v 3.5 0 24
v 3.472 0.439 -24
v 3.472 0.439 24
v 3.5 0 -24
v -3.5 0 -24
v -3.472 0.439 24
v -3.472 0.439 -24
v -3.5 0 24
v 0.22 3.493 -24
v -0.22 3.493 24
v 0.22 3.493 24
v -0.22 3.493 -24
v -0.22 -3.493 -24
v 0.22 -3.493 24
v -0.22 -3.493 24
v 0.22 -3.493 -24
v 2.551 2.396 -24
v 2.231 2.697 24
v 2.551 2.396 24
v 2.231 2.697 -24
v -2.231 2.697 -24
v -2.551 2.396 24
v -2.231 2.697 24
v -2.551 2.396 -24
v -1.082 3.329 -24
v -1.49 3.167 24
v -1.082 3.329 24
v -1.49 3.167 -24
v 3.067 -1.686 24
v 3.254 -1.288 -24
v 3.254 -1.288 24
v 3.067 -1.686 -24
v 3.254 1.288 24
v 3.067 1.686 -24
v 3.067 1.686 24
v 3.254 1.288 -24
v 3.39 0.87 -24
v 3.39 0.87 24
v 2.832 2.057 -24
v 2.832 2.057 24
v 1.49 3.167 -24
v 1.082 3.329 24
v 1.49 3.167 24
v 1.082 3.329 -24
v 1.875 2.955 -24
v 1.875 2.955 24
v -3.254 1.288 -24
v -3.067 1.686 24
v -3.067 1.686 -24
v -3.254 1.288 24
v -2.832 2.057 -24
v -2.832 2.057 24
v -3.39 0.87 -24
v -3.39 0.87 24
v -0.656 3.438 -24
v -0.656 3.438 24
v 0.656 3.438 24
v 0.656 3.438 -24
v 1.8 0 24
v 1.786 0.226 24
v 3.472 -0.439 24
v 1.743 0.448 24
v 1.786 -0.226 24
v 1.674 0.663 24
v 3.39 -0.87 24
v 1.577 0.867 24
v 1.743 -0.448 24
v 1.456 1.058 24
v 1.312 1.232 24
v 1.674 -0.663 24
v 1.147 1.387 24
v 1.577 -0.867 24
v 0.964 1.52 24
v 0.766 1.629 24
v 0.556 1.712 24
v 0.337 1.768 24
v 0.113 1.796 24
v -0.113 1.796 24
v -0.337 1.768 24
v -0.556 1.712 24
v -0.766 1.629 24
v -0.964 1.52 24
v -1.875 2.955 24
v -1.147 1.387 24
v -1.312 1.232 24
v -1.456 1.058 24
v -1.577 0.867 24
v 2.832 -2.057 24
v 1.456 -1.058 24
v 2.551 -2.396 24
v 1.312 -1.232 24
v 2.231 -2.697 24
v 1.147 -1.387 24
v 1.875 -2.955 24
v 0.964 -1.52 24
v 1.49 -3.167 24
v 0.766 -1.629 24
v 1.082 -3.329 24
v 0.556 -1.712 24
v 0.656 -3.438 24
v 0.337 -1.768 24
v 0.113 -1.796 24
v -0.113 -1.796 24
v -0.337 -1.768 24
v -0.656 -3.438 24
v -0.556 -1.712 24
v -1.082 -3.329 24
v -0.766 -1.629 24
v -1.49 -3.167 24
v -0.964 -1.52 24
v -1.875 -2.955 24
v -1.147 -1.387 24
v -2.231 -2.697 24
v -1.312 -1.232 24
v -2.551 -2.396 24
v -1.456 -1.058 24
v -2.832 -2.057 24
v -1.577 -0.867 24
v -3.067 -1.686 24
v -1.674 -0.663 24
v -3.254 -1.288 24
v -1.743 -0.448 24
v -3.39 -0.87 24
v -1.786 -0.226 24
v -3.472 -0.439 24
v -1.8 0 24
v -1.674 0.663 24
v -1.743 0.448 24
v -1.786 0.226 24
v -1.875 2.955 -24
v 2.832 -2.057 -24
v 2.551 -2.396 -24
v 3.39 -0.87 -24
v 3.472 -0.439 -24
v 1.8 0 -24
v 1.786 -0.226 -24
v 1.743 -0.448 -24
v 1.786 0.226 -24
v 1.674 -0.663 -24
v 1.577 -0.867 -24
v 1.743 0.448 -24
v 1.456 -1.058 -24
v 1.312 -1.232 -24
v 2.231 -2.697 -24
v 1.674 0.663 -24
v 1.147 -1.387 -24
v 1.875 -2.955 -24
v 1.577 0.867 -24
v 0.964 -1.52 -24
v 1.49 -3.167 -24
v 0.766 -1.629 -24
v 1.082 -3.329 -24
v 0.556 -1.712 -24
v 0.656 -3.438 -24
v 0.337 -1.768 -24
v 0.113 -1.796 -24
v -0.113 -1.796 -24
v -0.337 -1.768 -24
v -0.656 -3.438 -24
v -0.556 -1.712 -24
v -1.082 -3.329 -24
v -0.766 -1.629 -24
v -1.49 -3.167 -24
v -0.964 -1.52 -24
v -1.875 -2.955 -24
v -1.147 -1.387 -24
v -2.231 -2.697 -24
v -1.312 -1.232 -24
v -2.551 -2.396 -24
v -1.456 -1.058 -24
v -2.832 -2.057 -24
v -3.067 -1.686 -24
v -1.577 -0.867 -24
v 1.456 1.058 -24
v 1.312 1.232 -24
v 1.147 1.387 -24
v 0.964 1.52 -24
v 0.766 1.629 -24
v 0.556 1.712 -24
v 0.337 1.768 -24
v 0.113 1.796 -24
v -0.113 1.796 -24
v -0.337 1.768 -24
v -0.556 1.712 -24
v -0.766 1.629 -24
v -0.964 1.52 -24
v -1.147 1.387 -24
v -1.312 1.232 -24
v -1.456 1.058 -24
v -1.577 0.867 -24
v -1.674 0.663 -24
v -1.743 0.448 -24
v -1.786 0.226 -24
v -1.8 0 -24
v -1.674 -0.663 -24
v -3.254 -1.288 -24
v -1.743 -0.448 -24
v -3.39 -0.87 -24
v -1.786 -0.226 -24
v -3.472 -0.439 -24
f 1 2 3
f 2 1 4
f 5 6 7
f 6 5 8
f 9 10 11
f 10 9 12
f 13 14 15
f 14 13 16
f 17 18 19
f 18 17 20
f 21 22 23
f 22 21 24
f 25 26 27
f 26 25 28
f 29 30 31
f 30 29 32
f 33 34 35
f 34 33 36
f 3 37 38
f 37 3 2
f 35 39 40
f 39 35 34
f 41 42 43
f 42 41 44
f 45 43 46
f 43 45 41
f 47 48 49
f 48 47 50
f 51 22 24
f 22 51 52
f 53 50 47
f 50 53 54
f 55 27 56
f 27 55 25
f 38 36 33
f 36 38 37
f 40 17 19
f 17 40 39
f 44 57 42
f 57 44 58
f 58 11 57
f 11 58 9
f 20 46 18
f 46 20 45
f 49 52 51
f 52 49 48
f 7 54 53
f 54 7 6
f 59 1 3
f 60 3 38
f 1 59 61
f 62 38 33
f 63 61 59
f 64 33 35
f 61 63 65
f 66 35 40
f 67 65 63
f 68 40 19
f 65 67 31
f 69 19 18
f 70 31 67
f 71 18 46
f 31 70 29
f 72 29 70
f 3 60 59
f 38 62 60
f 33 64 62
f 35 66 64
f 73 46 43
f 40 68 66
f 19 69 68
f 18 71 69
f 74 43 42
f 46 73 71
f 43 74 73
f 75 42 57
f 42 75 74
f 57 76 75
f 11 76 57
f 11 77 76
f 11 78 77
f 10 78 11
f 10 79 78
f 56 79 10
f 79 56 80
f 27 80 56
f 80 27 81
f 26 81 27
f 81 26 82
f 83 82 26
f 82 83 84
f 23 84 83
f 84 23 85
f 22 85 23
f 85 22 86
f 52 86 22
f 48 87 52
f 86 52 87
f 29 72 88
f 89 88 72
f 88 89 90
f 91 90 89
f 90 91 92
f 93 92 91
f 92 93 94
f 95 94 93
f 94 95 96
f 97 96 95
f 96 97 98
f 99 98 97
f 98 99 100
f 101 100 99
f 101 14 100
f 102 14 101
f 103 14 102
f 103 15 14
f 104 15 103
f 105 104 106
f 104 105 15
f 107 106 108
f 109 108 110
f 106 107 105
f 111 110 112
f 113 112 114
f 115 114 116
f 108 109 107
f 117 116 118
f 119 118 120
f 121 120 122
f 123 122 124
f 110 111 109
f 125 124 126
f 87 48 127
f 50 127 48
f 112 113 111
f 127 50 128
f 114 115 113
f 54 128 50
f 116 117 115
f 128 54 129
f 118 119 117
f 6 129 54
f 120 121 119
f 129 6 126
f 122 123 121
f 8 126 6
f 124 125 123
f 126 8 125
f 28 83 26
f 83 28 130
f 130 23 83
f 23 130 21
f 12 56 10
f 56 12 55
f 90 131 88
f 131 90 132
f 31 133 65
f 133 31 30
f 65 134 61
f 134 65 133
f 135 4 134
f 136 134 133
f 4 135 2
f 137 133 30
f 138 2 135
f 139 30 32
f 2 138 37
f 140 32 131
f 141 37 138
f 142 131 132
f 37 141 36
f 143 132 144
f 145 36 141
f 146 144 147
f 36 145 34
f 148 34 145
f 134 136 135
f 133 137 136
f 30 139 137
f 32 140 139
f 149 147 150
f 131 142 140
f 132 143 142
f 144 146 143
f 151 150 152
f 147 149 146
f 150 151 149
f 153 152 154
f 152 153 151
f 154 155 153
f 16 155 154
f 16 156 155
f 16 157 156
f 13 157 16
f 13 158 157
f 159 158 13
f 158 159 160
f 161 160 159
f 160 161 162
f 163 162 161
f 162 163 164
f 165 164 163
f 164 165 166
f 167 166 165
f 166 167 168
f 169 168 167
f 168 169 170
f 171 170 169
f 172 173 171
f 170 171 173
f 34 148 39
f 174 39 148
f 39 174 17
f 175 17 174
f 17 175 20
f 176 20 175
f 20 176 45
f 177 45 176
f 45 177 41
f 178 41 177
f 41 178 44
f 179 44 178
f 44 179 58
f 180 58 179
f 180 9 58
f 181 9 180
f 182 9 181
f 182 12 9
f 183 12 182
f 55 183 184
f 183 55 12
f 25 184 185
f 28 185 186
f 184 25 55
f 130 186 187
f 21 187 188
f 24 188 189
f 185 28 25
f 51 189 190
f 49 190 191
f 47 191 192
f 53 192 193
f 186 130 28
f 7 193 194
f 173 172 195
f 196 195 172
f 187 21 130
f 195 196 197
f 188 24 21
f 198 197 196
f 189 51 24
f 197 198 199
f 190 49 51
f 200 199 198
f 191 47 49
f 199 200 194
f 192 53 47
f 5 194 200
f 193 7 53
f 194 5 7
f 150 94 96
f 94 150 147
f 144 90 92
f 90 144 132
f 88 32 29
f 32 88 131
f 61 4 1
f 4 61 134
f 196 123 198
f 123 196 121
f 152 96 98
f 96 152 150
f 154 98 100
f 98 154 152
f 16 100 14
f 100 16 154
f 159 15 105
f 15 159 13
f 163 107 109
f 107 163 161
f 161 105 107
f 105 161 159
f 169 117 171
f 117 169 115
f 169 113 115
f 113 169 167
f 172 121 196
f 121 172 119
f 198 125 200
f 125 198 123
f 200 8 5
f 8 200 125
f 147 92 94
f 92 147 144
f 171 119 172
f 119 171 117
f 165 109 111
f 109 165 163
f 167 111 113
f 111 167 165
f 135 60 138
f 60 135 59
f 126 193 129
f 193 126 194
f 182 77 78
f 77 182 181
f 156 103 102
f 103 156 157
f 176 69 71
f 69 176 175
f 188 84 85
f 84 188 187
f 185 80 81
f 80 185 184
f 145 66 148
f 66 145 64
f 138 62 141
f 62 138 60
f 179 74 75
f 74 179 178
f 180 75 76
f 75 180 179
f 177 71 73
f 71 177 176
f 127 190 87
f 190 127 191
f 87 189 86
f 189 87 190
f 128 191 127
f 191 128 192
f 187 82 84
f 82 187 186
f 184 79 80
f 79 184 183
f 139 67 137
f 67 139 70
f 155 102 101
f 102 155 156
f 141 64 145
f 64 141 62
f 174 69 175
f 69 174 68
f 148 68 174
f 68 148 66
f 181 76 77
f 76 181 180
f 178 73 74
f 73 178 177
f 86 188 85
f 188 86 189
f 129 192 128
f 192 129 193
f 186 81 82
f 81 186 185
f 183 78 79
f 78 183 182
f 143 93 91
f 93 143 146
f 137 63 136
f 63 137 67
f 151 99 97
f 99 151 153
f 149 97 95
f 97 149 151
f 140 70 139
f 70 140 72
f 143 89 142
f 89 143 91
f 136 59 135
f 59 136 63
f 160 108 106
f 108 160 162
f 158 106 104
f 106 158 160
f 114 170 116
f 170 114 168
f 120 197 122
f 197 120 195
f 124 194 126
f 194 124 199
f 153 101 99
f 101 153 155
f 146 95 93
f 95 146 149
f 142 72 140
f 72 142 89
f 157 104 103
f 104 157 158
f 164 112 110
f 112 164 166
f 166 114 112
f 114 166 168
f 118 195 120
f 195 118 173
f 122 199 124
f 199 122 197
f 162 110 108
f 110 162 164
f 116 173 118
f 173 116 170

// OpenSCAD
$fn = 50;


difference() {
	union() {
		translate(v = [0, 0, -24.0000000000]) {
			cylinder(h = 48, r = 3.5000000000);
		}
	}
	union() {
		translate(v = [0, 0, -100.0000000000]) {
			cylinder(h = 200, r = 1.8000000000);
		}
	}
}
